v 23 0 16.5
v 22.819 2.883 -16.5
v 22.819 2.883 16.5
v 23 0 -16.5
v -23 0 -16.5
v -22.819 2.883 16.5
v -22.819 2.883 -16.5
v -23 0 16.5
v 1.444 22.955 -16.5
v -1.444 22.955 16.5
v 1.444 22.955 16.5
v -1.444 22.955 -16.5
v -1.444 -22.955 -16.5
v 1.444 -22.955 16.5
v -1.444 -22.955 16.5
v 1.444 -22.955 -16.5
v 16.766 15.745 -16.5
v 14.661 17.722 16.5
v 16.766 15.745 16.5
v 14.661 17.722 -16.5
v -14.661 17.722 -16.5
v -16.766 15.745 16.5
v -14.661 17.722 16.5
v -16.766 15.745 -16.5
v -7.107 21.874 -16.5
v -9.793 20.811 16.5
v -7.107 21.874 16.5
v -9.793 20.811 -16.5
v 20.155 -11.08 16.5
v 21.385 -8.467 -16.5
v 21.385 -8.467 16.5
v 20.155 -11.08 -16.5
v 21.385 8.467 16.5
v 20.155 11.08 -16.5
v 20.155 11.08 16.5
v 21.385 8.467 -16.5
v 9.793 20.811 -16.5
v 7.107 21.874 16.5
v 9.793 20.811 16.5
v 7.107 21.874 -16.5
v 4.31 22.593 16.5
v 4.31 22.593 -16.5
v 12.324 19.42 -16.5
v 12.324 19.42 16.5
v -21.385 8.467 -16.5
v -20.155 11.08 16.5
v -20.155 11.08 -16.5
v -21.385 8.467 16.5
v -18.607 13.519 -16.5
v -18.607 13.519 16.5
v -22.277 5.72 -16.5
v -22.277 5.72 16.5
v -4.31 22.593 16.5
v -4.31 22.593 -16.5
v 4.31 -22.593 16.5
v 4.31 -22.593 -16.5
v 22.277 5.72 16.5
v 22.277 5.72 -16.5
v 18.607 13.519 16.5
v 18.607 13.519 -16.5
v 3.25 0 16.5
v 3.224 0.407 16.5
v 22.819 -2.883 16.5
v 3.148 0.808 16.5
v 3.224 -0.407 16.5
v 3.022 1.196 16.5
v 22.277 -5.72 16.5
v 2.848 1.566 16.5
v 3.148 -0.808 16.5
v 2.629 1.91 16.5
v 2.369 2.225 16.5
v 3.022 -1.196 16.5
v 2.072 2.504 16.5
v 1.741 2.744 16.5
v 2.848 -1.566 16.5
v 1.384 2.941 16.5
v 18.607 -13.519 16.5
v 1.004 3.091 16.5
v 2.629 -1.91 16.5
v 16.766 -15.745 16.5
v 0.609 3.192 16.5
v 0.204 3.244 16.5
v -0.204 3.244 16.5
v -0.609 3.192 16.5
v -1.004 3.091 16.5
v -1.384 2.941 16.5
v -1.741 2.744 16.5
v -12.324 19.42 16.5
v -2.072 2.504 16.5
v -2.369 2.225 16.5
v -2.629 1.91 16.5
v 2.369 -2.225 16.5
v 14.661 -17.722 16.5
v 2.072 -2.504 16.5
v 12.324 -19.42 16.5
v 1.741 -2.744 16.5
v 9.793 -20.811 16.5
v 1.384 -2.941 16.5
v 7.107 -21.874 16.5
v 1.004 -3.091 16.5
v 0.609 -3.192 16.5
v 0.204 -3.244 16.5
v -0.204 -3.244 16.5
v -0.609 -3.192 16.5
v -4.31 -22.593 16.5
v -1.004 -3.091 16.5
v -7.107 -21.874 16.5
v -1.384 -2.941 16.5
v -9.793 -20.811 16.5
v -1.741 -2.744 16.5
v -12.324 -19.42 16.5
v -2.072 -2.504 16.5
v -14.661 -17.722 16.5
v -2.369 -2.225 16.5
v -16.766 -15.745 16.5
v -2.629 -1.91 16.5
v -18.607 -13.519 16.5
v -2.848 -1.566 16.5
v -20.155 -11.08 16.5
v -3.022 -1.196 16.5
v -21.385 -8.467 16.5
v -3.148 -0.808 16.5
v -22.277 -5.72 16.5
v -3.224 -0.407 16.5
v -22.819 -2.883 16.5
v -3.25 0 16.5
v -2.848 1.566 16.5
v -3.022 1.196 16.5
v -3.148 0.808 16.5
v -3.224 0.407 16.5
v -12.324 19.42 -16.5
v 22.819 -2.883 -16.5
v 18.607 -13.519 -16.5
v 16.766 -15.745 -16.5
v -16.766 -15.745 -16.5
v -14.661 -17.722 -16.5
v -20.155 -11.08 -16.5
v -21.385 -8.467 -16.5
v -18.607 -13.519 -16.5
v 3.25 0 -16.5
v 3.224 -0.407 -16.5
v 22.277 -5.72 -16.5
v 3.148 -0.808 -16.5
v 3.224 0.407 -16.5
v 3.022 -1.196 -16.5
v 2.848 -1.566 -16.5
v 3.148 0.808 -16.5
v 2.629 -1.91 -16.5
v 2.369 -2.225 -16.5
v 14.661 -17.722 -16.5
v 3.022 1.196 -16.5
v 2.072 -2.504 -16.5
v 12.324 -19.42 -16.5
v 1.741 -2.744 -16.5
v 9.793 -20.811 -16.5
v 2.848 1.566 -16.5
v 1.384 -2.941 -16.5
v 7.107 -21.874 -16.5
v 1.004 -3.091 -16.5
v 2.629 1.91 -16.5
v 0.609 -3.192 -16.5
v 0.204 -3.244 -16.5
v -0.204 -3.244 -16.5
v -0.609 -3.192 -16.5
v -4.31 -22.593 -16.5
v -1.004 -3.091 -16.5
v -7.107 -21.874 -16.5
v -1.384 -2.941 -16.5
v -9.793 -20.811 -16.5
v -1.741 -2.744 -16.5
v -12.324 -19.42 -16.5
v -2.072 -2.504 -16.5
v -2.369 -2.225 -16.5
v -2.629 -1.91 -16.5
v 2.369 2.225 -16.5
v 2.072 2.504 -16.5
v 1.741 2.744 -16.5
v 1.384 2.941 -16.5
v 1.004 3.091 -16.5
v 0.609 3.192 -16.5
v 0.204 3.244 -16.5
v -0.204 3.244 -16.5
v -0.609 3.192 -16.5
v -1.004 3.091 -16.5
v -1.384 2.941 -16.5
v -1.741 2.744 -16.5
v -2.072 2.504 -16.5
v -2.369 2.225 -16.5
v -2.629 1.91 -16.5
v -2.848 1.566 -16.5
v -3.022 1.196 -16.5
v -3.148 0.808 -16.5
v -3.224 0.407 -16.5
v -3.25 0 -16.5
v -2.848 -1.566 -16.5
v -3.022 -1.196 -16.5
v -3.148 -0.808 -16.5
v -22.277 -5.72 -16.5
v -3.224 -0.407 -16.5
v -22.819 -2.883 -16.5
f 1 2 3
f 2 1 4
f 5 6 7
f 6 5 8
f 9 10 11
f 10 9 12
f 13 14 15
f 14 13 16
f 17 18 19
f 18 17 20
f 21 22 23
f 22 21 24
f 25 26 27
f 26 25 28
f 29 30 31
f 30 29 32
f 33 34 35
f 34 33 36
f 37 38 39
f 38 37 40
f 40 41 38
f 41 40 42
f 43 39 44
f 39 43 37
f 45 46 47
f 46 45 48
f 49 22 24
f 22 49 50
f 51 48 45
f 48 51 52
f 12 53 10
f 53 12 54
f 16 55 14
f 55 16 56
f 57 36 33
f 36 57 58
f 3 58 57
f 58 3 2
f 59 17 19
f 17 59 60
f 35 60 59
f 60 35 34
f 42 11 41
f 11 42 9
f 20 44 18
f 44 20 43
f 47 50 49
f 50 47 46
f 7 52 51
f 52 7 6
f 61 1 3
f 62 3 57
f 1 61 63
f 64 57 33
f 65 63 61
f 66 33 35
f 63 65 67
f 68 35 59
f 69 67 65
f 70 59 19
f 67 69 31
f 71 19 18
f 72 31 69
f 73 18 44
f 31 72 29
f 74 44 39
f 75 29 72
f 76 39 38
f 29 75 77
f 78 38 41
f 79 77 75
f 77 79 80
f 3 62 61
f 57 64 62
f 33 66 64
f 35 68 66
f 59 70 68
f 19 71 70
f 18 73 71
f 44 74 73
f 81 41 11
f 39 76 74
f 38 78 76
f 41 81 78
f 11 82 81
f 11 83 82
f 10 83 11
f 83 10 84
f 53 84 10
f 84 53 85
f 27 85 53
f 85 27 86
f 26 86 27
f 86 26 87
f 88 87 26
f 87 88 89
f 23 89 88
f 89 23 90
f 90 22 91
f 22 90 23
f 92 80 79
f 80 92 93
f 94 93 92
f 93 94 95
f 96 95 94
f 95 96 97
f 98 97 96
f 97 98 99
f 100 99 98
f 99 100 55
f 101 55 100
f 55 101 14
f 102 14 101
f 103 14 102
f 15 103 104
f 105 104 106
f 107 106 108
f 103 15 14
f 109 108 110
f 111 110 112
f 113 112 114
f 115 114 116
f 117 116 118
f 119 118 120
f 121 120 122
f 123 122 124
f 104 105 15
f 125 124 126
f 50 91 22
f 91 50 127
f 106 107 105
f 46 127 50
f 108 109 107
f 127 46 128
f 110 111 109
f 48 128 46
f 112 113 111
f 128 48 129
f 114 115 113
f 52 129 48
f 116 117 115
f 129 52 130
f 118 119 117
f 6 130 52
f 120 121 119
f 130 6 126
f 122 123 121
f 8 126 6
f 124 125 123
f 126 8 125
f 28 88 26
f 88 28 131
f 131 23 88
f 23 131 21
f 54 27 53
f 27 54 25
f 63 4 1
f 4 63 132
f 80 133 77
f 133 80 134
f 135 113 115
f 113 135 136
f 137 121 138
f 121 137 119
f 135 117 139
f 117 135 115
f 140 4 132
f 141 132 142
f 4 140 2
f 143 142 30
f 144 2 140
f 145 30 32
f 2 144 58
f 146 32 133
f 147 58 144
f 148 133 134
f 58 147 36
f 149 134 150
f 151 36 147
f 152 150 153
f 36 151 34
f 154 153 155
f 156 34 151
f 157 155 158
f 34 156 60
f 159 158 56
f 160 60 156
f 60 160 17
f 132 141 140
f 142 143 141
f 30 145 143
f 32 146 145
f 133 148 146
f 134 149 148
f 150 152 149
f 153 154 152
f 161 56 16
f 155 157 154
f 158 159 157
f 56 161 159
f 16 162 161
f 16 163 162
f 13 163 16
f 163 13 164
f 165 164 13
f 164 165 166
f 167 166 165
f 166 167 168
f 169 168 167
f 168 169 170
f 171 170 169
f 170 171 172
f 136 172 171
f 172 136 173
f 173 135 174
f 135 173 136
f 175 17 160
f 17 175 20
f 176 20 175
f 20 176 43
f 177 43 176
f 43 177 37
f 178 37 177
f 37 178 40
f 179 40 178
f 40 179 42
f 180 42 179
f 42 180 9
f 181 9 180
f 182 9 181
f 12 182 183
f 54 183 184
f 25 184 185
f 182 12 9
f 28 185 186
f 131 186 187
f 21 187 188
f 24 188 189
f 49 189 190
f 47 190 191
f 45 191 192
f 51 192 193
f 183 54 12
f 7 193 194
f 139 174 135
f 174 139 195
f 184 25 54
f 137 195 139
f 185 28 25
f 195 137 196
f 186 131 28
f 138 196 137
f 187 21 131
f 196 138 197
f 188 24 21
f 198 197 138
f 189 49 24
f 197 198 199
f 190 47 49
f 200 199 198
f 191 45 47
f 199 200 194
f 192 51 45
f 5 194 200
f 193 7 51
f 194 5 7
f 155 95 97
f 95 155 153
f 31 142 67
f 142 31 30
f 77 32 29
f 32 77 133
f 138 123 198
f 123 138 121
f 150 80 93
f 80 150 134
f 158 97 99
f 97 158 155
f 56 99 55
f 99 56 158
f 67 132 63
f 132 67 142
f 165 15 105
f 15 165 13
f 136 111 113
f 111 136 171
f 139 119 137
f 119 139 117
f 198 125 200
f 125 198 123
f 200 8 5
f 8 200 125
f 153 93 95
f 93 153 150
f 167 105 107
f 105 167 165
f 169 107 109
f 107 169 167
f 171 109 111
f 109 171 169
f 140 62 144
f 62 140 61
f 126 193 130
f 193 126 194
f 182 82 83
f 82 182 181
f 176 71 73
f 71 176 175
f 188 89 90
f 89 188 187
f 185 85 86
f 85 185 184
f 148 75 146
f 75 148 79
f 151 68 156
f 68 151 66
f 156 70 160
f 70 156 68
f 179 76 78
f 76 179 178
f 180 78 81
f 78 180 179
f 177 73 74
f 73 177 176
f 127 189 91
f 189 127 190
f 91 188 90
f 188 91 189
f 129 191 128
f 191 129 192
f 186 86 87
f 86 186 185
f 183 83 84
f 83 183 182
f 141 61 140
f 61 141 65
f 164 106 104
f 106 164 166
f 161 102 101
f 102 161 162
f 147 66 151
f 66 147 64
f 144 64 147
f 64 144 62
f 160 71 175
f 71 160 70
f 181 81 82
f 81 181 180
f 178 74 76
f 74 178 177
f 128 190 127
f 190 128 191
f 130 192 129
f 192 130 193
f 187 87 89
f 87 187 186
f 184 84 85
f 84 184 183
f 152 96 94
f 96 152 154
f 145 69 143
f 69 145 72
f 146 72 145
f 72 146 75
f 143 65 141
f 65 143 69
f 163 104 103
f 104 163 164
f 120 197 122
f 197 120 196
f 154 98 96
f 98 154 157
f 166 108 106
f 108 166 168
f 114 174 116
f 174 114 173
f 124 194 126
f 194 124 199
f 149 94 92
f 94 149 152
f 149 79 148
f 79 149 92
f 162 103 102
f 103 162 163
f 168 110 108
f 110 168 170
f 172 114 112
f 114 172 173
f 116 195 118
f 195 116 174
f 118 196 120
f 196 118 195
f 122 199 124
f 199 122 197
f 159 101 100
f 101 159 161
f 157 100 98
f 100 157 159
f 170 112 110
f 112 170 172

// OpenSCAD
$fn = 50;


difference() {
	union() {
		translate(v = [0, 0, -16.5000000000]) {
			cylinder(h = 33, r = 23.0000000000);
		}
	}
	union() {
		translate(v = [0, 0, -100.0000000000]) {
			cylinder(h = 200, r = 3.2500000000);
		}
	}
}
